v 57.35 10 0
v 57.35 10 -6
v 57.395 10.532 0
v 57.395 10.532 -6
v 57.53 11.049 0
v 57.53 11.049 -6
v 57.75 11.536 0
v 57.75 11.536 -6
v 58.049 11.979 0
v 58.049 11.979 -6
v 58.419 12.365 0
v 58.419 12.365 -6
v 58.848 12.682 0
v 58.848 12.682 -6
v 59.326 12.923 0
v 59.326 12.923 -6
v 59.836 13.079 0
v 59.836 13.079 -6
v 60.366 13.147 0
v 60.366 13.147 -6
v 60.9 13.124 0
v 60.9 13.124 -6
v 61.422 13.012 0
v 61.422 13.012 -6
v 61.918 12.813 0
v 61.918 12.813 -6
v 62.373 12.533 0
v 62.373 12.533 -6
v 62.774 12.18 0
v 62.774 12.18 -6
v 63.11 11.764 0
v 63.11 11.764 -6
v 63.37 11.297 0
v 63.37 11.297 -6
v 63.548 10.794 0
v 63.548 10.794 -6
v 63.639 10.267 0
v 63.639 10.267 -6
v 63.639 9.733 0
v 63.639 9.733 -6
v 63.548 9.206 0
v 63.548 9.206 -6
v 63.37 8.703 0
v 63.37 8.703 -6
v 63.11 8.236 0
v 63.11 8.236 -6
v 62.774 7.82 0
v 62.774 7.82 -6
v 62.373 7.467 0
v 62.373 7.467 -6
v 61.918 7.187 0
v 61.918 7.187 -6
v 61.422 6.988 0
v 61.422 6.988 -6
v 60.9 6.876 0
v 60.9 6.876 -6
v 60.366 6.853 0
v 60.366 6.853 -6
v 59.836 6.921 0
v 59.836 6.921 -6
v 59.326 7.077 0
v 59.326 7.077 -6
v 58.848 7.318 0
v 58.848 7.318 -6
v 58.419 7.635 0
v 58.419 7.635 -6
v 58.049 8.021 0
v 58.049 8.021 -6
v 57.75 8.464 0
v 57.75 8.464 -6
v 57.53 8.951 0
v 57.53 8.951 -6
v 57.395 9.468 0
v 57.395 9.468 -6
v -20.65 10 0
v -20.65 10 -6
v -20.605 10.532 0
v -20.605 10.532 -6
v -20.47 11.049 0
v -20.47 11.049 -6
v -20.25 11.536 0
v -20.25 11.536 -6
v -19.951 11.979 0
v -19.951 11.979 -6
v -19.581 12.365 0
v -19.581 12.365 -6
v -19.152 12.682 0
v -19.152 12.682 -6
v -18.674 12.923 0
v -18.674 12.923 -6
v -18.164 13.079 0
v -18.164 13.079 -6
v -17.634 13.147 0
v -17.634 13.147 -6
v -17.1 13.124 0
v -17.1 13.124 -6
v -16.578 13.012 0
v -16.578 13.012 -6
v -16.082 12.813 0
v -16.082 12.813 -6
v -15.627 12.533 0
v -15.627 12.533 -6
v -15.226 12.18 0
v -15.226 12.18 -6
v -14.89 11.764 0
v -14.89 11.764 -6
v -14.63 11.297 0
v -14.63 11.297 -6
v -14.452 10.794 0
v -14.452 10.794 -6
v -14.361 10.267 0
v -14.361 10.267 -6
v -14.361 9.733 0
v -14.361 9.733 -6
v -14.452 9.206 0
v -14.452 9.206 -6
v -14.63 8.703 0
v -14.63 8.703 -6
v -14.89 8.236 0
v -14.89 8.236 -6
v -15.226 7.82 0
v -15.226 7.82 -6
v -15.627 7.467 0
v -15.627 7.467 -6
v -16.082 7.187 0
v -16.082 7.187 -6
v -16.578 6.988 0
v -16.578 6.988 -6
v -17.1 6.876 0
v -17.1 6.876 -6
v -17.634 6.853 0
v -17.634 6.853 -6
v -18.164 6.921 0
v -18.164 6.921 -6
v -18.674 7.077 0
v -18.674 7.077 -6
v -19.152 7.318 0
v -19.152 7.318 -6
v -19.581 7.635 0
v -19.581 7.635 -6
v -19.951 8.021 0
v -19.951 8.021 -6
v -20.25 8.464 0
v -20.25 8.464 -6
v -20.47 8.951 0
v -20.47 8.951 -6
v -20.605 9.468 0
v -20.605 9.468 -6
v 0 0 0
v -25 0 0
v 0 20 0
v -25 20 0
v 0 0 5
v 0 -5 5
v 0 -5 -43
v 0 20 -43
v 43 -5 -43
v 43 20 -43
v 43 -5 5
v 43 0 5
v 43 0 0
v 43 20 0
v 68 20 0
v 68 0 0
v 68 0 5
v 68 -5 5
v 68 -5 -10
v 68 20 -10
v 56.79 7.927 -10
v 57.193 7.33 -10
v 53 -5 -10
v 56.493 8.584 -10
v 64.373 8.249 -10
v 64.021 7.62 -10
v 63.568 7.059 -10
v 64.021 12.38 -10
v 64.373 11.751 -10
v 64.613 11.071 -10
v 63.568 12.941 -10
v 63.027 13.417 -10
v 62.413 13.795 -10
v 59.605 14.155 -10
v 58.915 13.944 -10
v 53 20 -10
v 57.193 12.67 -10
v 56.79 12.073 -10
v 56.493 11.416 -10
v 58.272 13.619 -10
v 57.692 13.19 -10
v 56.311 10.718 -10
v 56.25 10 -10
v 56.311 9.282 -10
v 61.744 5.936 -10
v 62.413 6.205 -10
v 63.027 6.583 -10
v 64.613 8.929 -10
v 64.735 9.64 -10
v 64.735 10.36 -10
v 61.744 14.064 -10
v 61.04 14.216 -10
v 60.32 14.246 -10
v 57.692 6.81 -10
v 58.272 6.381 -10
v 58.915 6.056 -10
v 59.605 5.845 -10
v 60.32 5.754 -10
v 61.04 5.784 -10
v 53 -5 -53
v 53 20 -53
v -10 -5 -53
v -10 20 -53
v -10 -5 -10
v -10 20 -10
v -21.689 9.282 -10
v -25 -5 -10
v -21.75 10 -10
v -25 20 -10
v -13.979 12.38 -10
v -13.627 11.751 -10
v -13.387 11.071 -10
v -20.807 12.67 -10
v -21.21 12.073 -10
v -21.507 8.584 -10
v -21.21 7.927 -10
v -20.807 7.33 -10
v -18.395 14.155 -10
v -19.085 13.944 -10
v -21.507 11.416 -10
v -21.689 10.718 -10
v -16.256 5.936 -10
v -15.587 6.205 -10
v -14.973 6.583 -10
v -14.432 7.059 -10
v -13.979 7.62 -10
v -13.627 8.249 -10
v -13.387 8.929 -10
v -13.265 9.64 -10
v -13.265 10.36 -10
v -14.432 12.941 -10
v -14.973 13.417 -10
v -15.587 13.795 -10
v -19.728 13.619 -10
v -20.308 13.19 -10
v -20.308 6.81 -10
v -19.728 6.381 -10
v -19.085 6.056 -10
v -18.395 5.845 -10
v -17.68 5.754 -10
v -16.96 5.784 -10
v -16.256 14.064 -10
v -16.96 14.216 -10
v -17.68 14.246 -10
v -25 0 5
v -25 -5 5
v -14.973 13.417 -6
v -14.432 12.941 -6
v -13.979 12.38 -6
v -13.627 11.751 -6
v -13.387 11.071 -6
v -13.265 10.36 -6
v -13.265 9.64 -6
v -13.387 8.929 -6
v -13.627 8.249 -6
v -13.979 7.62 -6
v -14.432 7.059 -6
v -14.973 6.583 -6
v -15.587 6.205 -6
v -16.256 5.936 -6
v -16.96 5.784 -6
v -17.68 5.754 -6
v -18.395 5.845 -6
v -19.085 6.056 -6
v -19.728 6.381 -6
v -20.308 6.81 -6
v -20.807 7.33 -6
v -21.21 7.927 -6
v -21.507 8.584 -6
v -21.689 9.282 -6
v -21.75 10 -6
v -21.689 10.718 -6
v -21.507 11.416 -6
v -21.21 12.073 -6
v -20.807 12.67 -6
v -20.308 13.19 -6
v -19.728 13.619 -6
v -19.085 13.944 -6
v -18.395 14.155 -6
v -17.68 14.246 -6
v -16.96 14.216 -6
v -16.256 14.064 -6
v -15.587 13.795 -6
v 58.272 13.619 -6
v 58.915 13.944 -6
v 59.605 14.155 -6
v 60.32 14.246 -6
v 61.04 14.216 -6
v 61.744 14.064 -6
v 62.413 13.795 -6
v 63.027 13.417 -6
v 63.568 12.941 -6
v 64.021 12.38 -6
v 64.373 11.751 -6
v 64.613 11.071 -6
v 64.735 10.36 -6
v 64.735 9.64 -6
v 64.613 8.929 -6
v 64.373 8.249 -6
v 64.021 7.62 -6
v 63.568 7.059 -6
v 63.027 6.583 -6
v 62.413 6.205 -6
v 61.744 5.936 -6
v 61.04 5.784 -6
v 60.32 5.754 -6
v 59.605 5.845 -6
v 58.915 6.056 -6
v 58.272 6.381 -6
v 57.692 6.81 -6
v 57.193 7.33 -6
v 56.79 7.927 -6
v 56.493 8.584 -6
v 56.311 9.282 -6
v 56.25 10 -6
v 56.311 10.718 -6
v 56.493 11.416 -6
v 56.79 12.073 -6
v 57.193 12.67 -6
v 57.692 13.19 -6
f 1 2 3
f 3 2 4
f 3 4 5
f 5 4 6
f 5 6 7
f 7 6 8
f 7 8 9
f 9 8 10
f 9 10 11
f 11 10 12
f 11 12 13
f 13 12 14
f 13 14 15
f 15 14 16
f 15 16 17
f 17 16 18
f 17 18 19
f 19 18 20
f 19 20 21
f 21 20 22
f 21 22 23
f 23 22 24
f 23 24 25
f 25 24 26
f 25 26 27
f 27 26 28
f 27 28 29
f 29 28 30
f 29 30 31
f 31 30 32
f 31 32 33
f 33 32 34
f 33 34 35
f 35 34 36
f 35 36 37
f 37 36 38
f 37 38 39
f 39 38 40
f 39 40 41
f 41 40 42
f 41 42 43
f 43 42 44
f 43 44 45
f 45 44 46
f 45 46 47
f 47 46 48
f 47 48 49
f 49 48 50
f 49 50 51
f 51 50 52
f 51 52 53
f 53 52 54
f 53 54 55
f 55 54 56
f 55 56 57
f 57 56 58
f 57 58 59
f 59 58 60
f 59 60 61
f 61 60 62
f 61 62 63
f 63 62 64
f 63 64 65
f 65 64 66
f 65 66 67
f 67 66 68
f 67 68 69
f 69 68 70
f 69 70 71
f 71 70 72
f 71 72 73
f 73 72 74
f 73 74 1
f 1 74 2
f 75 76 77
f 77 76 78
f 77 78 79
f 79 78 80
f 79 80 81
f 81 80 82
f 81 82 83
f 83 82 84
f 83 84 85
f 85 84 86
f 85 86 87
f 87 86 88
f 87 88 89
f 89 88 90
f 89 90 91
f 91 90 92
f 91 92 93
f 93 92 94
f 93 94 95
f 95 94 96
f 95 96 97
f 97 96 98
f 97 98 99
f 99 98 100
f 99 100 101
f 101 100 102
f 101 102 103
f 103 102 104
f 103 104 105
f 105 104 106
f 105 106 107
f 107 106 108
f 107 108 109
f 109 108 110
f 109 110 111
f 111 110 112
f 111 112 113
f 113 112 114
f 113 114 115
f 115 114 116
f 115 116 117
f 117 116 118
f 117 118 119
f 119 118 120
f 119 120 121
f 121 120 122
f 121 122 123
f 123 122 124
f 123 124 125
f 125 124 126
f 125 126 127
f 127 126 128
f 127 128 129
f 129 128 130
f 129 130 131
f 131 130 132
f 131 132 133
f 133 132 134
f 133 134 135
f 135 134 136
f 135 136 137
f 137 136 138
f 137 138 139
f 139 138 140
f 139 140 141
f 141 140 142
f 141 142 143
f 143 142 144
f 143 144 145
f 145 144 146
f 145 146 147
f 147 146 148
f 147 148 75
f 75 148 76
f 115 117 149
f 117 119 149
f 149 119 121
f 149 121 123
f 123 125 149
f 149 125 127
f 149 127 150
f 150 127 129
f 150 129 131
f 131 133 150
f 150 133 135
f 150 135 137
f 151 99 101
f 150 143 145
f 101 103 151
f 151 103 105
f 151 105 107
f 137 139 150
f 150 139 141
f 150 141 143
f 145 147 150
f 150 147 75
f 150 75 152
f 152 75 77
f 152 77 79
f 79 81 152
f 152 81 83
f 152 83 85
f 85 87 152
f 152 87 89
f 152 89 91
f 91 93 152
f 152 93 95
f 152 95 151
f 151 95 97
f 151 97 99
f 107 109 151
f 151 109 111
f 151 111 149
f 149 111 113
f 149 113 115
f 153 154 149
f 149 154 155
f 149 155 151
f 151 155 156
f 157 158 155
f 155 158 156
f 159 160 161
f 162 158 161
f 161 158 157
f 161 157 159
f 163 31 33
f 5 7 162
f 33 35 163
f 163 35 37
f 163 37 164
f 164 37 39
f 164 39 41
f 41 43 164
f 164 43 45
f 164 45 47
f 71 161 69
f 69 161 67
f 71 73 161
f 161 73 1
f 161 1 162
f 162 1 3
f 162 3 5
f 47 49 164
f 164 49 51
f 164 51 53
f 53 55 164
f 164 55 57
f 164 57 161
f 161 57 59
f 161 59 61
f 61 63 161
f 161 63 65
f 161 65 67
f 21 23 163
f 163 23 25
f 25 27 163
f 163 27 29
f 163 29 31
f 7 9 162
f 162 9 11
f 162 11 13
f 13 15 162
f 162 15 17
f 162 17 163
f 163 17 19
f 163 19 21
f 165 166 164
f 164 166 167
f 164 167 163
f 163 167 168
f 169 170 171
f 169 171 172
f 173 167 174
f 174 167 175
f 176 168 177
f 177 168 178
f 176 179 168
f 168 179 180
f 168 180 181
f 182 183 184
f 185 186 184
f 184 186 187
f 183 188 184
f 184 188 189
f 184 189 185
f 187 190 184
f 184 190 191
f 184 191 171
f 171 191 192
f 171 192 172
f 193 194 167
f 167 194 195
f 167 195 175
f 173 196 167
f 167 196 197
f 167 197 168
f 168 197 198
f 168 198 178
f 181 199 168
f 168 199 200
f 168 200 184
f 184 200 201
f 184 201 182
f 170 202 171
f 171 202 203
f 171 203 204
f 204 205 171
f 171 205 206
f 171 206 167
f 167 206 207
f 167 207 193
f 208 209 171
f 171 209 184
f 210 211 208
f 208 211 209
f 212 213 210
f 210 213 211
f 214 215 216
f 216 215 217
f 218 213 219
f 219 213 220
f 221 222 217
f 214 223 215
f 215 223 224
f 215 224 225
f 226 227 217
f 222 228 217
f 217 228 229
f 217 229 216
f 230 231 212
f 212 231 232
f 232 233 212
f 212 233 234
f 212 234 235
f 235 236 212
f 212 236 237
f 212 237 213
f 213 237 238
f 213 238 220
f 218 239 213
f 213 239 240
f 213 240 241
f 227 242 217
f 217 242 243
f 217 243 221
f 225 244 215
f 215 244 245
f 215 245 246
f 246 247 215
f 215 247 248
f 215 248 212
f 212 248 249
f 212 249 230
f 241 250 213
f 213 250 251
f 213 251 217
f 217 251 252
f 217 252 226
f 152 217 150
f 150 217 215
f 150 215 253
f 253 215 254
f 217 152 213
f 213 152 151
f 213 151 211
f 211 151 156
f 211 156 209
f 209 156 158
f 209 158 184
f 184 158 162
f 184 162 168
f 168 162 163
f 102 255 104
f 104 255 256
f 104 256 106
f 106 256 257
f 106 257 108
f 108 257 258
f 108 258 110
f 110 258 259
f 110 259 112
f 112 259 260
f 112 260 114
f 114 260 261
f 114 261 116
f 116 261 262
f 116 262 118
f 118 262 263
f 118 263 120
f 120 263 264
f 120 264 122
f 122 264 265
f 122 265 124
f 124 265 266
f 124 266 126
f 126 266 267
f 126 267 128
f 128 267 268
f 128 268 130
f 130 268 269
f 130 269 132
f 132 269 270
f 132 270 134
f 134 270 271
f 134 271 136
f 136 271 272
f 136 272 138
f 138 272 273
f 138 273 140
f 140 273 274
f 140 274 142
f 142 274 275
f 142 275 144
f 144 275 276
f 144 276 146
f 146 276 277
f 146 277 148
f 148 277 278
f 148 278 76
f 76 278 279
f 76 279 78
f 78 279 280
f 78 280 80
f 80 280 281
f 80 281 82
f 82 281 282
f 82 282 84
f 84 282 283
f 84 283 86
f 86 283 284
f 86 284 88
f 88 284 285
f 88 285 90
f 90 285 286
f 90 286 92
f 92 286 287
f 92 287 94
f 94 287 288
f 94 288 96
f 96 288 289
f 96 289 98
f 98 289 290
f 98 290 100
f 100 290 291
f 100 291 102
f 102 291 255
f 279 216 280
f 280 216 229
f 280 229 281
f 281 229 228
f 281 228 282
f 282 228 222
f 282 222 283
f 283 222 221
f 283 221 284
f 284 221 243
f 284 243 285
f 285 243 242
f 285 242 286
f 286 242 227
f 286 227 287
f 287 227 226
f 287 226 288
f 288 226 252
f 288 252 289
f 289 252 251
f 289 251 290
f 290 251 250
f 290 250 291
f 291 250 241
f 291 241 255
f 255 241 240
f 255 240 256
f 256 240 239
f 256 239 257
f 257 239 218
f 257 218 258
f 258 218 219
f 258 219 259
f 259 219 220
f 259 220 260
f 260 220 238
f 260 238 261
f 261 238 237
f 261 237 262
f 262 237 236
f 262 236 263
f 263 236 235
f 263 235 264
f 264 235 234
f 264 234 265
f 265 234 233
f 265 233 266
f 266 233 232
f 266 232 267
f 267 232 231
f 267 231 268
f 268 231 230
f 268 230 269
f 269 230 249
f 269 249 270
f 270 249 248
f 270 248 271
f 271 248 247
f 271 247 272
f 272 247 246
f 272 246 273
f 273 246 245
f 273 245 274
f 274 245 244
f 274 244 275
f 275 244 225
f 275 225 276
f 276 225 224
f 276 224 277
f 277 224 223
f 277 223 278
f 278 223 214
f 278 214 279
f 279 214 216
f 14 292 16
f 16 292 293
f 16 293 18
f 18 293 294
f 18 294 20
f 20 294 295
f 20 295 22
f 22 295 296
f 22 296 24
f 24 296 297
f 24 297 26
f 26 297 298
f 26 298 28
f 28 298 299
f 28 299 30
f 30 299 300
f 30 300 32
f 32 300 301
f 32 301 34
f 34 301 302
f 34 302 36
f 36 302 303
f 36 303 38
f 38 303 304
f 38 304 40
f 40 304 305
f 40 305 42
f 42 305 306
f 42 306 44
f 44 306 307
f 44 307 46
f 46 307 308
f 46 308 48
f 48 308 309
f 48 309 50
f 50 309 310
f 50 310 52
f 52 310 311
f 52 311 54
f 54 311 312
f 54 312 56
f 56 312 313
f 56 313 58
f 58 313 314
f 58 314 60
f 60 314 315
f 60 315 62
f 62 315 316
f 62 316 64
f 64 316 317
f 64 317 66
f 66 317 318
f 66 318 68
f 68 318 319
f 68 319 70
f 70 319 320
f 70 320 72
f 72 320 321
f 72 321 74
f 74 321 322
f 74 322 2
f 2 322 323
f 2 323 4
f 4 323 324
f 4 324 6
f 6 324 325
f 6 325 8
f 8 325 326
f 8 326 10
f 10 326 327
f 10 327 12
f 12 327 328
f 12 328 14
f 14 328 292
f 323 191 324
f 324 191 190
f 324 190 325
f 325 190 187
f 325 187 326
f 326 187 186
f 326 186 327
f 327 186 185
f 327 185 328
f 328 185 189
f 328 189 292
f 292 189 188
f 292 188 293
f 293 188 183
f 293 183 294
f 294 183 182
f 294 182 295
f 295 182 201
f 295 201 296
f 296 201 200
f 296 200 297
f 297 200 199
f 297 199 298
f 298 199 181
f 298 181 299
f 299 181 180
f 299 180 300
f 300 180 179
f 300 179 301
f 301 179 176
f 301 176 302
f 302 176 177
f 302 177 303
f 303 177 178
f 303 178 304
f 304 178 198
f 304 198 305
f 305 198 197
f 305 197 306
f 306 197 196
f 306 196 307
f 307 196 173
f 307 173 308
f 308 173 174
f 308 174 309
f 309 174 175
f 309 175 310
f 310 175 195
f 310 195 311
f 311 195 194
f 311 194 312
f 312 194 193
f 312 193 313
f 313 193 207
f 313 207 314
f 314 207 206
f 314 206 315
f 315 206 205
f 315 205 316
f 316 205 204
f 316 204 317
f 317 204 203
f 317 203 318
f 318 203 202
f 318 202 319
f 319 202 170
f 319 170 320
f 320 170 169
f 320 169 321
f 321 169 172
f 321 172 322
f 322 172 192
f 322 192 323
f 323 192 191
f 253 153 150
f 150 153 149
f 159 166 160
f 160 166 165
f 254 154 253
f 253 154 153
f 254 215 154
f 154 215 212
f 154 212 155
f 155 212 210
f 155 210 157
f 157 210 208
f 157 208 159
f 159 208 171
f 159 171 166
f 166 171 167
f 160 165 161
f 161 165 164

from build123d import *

# Parameters (mm, degrees)
BOSS_EXTRUDE1_DEPTH = 20
SKETCH2_R           = 3.15
CUT_EXTRUDE2_DEPTH  = 11
SKETCH3_R           = 4.25
CUT_EXTRUDE3_DEPTH  = 4
BOSS_EXTRUDE2_DEPTH = 5


with BuildPart() as part:
    # Sketch1 → Boss-Extrude1 (new body)
    with BuildSketch(Plane(origin=(0, 0, 0), x_dir=(1, 0, 0), z_dir=(0, 1, 0))):
        Polygon((0, 0), (0, 43), (43, 43), (43, 0), (68, 0), (68, 10), (53, 10), (53, 53), (-10, 53), (-10, 10), (-25, 10), (-25, 0), align=None)
    extrude(amount=BOSS_EXTRUDE1_DEPTH)

    # Sketch2 → Cut-Extrude2 (cut, through all)
    with BuildSketch(Plane(origin=(0, 0, -10), x_dir=(-1, 0, 0), z_dir=(0, 0, -1))):
        with Locations((-60.5, 10)):
            Circle(SKETCH2_R)
        with Locations((17.5, 10)):
            Circle(SKETCH2_R)
    extrude(amount=-CUT_EXTRUDE2_DEPTH, mode=Mode.SUBTRACT)

    # Sketch3 → Cut-Extrude3 (cut)
    with BuildSketch(Plane(origin=(0, 0, -10), x_dir=(-1, 0, 0), z_dir=(0, 0, -1))):
        with Locations((17.5, 10)):
            Circle(SKETCH3_R)
        with Locations((-60.5, 10)):
            Circle(SKETCH3_R)
    extrude(amount=-CUT_EXTRUDE3_DEPTH, mode=Mode.SUBTRACT)

    # Sketch4 → Boss-Extrude2 (add)
    with BuildSketch(Plane.XZ):
        Polygon((-25, 5), (0, 5), (0, -43), (43, -43), (43, 5), (68, 5), (68, -10), (53, -10), (53, -53), (-10, -53), (-10, -10), (-25, -10), align=None)
    extrude(amount=BOSS_EXTRUDE2_DEPTH)


solid = part.part
